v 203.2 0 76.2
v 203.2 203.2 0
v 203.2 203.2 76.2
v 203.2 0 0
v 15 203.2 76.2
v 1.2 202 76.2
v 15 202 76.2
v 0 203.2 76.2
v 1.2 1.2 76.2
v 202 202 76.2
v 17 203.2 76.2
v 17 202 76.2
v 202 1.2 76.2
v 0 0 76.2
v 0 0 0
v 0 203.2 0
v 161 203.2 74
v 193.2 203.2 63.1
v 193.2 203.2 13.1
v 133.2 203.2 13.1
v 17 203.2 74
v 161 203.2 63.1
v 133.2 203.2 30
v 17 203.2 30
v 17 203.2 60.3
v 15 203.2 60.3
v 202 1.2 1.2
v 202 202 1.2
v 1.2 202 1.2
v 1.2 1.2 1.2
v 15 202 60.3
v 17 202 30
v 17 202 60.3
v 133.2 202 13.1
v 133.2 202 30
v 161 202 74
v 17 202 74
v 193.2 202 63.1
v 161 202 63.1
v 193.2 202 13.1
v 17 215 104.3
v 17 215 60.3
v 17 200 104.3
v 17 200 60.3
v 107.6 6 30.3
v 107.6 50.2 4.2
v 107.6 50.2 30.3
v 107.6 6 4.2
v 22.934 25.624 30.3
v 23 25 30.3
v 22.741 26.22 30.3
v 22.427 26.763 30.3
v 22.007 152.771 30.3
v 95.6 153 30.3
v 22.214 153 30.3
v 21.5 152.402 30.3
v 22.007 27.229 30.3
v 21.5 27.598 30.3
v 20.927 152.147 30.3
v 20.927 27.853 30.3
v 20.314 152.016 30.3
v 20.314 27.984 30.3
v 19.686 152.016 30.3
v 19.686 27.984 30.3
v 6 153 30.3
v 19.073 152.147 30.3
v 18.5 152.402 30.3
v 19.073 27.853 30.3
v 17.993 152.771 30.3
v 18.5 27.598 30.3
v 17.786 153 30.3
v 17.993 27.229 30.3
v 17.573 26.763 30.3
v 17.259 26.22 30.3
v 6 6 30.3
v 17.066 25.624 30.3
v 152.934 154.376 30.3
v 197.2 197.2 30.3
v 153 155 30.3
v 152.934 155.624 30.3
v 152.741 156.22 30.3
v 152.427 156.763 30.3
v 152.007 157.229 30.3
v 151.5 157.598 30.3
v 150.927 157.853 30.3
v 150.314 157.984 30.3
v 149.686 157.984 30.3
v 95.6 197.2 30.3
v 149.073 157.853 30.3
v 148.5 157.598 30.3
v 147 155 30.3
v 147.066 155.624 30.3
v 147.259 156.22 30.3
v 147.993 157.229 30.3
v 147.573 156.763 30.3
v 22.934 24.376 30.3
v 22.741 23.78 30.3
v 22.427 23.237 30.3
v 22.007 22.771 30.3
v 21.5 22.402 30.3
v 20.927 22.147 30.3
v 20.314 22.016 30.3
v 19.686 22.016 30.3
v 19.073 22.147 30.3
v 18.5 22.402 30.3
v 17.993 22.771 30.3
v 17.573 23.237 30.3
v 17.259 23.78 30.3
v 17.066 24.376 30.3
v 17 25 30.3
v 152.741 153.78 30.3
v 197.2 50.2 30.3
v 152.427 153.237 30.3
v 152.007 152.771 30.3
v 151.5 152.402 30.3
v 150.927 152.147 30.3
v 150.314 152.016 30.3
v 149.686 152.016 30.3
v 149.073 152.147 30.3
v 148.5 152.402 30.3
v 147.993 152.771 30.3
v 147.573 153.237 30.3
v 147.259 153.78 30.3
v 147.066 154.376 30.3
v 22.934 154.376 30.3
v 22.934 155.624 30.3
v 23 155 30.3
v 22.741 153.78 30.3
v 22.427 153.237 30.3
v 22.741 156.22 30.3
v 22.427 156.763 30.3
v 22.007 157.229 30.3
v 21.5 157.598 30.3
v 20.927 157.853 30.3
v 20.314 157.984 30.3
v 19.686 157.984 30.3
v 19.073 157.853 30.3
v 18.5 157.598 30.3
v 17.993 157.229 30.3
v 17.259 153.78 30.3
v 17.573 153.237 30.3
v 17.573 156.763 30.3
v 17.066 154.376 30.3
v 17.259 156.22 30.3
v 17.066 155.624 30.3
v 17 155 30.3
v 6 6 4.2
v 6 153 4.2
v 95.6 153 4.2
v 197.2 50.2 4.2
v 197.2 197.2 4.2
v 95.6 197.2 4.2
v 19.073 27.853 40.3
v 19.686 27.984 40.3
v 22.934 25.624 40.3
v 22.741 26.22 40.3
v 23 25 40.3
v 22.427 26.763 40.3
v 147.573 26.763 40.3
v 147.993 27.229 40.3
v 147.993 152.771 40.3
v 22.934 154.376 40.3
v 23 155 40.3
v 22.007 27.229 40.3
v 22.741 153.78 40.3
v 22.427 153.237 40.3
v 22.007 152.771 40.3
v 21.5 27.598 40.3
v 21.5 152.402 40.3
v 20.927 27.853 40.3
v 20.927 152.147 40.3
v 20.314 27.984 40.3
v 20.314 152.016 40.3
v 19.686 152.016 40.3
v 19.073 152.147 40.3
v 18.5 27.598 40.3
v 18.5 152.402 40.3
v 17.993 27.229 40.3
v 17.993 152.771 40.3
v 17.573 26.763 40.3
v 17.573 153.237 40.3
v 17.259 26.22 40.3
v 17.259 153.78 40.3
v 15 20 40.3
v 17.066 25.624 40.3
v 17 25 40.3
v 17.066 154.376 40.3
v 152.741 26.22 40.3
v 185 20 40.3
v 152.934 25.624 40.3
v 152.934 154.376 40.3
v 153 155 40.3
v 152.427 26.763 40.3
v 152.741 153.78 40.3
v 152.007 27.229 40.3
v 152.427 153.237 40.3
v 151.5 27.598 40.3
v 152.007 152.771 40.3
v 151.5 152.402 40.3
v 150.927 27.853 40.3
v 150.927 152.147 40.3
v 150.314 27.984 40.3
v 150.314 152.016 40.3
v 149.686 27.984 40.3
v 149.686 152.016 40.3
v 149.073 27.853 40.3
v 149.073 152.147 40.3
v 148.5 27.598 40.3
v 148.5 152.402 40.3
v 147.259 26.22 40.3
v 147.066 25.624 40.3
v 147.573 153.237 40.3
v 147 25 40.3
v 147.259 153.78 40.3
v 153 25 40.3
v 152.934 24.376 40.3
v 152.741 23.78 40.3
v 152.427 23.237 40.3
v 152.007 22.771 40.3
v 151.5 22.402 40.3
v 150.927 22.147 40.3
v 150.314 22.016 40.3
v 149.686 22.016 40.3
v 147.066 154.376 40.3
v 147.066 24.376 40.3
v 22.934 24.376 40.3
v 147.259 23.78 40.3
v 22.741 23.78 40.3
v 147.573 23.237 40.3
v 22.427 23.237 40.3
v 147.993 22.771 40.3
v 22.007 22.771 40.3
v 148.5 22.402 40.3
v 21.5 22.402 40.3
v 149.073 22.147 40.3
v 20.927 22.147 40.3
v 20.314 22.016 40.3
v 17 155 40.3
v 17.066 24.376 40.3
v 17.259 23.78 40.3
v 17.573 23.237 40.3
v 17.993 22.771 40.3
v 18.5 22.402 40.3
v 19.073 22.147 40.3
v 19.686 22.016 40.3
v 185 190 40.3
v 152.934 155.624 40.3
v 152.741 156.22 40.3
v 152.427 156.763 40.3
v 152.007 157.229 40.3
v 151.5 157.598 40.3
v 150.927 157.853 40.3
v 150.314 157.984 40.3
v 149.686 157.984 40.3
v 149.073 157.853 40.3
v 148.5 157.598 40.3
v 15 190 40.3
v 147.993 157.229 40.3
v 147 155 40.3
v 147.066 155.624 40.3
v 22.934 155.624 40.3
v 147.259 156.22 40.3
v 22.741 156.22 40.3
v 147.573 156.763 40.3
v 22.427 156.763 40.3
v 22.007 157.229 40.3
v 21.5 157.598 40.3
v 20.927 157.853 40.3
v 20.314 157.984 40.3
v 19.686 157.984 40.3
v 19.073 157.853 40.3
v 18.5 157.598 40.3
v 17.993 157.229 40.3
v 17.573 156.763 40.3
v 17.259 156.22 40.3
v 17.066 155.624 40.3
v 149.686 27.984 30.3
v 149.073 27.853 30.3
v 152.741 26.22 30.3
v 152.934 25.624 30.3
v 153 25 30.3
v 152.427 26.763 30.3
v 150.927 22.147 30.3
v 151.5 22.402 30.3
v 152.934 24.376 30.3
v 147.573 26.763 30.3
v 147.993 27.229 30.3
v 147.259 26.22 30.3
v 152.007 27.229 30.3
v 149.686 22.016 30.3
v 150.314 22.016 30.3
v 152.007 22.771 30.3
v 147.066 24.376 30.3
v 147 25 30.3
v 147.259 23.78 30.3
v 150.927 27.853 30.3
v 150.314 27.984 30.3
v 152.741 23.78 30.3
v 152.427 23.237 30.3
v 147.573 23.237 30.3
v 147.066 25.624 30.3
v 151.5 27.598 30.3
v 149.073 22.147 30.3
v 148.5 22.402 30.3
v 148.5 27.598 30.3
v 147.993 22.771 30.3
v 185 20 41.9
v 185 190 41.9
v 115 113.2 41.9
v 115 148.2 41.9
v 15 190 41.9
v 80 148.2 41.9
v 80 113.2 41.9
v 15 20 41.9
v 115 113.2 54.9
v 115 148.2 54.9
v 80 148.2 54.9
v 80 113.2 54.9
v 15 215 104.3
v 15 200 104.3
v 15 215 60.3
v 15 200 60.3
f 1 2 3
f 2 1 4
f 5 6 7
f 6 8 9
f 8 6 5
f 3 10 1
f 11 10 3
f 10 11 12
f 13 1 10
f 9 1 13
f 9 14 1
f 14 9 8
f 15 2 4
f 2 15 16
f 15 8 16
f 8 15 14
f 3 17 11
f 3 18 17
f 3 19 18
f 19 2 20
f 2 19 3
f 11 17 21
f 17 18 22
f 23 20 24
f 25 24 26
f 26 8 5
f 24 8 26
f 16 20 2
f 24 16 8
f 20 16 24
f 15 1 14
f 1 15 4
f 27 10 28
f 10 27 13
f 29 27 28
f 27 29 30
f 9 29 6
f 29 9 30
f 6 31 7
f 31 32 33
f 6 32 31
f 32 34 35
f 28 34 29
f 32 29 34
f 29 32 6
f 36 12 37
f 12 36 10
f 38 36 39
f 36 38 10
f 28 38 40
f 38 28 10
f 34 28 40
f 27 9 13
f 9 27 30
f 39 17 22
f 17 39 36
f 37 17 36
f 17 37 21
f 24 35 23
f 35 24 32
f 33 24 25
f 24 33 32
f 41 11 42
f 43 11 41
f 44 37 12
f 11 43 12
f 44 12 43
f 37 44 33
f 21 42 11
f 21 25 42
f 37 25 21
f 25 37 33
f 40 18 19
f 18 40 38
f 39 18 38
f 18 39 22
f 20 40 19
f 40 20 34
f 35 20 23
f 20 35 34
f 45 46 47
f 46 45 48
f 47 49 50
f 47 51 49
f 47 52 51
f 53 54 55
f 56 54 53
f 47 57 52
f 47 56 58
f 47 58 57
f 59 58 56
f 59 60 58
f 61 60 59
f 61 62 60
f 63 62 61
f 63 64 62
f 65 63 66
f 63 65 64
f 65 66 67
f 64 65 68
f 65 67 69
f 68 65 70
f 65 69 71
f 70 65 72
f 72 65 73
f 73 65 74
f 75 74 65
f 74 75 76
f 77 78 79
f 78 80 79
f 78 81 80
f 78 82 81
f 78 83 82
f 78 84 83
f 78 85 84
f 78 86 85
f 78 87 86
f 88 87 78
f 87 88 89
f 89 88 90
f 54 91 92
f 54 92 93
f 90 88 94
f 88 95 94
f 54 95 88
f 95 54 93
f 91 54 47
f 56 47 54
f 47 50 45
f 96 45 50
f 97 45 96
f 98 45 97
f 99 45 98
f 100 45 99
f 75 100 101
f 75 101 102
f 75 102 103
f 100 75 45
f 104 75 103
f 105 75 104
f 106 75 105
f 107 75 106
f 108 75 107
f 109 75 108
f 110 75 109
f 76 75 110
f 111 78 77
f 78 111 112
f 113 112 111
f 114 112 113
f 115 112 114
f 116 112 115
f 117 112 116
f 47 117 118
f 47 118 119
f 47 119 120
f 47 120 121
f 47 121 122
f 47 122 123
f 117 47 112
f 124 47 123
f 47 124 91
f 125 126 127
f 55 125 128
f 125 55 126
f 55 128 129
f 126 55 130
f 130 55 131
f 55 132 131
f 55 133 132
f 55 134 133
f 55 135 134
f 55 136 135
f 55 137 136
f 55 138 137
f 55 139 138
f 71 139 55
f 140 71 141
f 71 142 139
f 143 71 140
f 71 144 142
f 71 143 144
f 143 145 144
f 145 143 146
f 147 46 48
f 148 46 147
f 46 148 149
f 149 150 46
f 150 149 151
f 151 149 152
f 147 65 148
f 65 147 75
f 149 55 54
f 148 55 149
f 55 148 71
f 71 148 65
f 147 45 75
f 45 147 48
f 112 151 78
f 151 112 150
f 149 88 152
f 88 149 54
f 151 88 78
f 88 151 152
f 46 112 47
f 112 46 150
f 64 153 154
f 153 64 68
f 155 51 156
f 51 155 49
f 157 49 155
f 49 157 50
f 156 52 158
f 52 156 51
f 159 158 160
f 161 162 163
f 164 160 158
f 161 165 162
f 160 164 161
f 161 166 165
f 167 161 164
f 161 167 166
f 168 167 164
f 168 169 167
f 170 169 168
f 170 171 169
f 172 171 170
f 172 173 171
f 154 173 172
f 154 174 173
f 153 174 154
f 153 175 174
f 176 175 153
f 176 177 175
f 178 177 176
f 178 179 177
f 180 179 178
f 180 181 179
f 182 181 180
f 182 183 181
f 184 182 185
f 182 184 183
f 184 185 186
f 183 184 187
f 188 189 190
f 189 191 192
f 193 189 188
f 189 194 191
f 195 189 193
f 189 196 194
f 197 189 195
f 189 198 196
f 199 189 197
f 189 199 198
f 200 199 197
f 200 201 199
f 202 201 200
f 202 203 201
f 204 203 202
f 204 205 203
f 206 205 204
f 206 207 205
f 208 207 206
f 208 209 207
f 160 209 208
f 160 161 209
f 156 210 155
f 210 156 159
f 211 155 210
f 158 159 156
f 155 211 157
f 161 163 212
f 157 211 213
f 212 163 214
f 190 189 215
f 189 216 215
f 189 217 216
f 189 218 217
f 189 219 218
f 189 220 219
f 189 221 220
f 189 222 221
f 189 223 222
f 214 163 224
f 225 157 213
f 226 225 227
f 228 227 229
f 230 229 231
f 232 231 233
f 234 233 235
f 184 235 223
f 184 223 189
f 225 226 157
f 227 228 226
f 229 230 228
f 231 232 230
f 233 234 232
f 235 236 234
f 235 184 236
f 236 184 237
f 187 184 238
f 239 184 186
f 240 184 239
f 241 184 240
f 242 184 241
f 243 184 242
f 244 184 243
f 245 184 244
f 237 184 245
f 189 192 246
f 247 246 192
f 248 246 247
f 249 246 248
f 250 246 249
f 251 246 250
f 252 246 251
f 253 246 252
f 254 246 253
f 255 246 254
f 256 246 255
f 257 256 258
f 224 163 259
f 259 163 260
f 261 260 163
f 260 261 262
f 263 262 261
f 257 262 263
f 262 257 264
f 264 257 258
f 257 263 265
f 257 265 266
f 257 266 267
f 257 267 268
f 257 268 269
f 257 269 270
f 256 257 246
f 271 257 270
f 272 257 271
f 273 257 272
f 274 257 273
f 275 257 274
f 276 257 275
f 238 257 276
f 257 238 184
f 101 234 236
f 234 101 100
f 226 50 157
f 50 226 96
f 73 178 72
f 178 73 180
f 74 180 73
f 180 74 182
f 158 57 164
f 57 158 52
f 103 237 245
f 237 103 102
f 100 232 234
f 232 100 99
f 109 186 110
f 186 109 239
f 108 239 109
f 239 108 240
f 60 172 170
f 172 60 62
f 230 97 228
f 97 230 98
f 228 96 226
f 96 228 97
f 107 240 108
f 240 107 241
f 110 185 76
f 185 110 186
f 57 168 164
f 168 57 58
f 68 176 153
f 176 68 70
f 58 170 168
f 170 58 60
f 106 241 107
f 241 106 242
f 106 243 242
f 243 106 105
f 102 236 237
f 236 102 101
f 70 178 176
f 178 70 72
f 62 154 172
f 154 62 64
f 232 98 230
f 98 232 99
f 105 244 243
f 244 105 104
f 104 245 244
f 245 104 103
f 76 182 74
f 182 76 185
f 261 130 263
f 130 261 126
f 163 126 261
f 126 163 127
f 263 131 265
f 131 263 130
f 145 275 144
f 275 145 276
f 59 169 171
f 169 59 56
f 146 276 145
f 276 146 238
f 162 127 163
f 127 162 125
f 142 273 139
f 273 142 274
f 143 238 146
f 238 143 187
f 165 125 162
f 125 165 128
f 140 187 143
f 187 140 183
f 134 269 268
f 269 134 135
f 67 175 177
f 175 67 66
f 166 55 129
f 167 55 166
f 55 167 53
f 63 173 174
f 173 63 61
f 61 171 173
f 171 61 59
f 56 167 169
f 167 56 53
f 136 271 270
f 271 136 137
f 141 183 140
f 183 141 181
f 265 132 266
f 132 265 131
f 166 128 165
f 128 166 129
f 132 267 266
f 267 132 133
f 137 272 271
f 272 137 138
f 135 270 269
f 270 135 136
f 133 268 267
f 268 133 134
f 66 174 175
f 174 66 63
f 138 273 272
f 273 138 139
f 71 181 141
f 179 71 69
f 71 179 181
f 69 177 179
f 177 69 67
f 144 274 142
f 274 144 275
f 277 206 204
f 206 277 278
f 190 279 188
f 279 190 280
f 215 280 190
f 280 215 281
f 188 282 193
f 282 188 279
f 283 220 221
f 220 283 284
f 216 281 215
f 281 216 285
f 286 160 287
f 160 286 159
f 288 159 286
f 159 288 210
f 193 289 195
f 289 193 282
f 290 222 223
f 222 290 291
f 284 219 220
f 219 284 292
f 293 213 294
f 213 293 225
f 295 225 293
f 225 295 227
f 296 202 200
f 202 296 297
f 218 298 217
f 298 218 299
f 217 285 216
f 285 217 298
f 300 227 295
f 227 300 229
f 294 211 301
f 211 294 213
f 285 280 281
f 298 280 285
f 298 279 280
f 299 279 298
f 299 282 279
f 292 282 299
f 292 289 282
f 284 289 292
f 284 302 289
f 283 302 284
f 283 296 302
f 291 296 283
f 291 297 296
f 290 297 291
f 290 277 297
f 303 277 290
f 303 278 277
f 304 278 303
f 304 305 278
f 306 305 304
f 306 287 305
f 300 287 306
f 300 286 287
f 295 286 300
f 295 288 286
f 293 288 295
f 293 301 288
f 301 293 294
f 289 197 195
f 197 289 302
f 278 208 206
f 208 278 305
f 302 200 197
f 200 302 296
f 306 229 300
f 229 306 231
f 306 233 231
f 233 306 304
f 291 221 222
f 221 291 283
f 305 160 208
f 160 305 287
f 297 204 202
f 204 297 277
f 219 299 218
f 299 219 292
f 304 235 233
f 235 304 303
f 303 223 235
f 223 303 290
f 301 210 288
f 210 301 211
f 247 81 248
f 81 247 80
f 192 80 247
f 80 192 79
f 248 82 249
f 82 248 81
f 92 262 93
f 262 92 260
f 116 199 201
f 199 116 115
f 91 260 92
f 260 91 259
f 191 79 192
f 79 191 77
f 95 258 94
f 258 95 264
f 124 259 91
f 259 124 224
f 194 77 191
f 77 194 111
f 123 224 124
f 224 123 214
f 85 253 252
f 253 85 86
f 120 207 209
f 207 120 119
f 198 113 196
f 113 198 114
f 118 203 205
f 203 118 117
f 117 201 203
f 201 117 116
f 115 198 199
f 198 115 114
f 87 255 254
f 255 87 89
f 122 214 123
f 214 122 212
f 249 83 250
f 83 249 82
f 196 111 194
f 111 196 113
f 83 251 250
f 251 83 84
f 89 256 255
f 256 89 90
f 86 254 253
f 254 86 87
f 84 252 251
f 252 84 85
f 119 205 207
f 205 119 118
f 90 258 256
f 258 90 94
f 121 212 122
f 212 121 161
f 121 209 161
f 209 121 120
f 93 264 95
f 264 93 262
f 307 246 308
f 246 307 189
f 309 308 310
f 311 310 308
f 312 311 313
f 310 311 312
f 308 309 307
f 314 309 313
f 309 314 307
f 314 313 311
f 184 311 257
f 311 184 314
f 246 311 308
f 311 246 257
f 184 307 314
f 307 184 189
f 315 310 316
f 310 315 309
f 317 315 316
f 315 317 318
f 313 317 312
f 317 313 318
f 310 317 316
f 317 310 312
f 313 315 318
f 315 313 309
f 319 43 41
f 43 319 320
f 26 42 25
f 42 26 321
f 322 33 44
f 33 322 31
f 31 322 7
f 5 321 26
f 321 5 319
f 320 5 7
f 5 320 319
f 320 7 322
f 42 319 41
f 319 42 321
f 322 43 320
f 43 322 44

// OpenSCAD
// Colo NAS Enclosure 3D — 8" × 3" × 8"
// Staggered L-layout: 2× 3.5" HDD + Mini ITX + 1U CPU cooler
// Units: mm

CaseW = 203.2; CaseH = 76.2; CaseD = 203.2; Metal = 1.2;
HDD_W = 101.6; HDD_H = 26.1; HDD_D = 147.0;
MB_W = 170.0; MB_D = 170.0; MB_H = 1.6; Standoff_H = 10.0;
$fn = 30;

// ====== CASE BODY ======
difference() {
    cube([CaseW, CaseD, CaseH]);
    translate([Metal, Metal, Metal])
        cube([CaseW-2*Metal, CaseD-2*Metal, CaseH]);
    // I/O cutout on rear wall  
    translate([17, CaseD-Metal-1, 30])
        cube([144, Metal+1, 44]);
    // Fan cutout on rear wall
    translate([CaseW-70, CaseD-Metal-1, CaseH/2-25])
        cube([60, Metal+1, 50]);
}

// ====== DRIVES ======
color("#444", 0.9) {
    // Drive 1: Front-Left (flush with bottom)
    translate([6, 6, Metal+3])
        cube([HDD_W, HDD_D, HDD_H]);
    // Drive 2: Back-Right
    translate([CaseW-HDD_W-6, CaseD-HDD_D-6, Metal+3])
        cube([HDD_W, HDD_D, HDD_H]);
}

// ====== STANDFOFS ======
for (x = [20, 20+130], y = [25, 25+130]) {
    translate([x, y, HDD_H+Metal+3])
        color("#888")
            cylinder(h=Standoff_H, d=6);
}

// ====== MOTHERBOARD ======
color("#1b6b3a", 0.95)
    translate([15, 20, HDD_H+Standoff_H+Metal+3])
        cube([MB_W, MB_D, MB_H]);

// CPU cooler (1U active)
color("#aaa")
    translate([80, CaseD-90, HDD_H+Standoff_H+MB_H+Metal+3])
        cube([35, 35, 13]);

// I/O shield
color("#333")
    translate([15, CaseD-Metal-2, HDD_H+Standoff_H+Metal+3+20])
        cube([2, 15, 44]);

// ====== DIMENSIONS ======
echo("=== NAS CASE ===");
echo(str("W ", CaseW, "mm / ", CaseW/25.4, "\""));
echo(str("H ", CaseH, "mm / ", CaseH/25.4, "\""));
echo(str("D ", CaseD, "mm / ", CaseD/25.4, "\""));
echo(str("Drives: 2x 3.5\" HDD"));
echo(str("Board: Mini ITX"));
echo(str("CPU cooler: 1U active (13mm)"));
echo(str("Total height used: ", HDD_H+Standoff_H+MB_H+13+Metal+3, "mm"));
echo(str("Top clearance: ", CaseH-(HDD_H+Standoff_H+MB_H+13+Metal+3), "mm"));
